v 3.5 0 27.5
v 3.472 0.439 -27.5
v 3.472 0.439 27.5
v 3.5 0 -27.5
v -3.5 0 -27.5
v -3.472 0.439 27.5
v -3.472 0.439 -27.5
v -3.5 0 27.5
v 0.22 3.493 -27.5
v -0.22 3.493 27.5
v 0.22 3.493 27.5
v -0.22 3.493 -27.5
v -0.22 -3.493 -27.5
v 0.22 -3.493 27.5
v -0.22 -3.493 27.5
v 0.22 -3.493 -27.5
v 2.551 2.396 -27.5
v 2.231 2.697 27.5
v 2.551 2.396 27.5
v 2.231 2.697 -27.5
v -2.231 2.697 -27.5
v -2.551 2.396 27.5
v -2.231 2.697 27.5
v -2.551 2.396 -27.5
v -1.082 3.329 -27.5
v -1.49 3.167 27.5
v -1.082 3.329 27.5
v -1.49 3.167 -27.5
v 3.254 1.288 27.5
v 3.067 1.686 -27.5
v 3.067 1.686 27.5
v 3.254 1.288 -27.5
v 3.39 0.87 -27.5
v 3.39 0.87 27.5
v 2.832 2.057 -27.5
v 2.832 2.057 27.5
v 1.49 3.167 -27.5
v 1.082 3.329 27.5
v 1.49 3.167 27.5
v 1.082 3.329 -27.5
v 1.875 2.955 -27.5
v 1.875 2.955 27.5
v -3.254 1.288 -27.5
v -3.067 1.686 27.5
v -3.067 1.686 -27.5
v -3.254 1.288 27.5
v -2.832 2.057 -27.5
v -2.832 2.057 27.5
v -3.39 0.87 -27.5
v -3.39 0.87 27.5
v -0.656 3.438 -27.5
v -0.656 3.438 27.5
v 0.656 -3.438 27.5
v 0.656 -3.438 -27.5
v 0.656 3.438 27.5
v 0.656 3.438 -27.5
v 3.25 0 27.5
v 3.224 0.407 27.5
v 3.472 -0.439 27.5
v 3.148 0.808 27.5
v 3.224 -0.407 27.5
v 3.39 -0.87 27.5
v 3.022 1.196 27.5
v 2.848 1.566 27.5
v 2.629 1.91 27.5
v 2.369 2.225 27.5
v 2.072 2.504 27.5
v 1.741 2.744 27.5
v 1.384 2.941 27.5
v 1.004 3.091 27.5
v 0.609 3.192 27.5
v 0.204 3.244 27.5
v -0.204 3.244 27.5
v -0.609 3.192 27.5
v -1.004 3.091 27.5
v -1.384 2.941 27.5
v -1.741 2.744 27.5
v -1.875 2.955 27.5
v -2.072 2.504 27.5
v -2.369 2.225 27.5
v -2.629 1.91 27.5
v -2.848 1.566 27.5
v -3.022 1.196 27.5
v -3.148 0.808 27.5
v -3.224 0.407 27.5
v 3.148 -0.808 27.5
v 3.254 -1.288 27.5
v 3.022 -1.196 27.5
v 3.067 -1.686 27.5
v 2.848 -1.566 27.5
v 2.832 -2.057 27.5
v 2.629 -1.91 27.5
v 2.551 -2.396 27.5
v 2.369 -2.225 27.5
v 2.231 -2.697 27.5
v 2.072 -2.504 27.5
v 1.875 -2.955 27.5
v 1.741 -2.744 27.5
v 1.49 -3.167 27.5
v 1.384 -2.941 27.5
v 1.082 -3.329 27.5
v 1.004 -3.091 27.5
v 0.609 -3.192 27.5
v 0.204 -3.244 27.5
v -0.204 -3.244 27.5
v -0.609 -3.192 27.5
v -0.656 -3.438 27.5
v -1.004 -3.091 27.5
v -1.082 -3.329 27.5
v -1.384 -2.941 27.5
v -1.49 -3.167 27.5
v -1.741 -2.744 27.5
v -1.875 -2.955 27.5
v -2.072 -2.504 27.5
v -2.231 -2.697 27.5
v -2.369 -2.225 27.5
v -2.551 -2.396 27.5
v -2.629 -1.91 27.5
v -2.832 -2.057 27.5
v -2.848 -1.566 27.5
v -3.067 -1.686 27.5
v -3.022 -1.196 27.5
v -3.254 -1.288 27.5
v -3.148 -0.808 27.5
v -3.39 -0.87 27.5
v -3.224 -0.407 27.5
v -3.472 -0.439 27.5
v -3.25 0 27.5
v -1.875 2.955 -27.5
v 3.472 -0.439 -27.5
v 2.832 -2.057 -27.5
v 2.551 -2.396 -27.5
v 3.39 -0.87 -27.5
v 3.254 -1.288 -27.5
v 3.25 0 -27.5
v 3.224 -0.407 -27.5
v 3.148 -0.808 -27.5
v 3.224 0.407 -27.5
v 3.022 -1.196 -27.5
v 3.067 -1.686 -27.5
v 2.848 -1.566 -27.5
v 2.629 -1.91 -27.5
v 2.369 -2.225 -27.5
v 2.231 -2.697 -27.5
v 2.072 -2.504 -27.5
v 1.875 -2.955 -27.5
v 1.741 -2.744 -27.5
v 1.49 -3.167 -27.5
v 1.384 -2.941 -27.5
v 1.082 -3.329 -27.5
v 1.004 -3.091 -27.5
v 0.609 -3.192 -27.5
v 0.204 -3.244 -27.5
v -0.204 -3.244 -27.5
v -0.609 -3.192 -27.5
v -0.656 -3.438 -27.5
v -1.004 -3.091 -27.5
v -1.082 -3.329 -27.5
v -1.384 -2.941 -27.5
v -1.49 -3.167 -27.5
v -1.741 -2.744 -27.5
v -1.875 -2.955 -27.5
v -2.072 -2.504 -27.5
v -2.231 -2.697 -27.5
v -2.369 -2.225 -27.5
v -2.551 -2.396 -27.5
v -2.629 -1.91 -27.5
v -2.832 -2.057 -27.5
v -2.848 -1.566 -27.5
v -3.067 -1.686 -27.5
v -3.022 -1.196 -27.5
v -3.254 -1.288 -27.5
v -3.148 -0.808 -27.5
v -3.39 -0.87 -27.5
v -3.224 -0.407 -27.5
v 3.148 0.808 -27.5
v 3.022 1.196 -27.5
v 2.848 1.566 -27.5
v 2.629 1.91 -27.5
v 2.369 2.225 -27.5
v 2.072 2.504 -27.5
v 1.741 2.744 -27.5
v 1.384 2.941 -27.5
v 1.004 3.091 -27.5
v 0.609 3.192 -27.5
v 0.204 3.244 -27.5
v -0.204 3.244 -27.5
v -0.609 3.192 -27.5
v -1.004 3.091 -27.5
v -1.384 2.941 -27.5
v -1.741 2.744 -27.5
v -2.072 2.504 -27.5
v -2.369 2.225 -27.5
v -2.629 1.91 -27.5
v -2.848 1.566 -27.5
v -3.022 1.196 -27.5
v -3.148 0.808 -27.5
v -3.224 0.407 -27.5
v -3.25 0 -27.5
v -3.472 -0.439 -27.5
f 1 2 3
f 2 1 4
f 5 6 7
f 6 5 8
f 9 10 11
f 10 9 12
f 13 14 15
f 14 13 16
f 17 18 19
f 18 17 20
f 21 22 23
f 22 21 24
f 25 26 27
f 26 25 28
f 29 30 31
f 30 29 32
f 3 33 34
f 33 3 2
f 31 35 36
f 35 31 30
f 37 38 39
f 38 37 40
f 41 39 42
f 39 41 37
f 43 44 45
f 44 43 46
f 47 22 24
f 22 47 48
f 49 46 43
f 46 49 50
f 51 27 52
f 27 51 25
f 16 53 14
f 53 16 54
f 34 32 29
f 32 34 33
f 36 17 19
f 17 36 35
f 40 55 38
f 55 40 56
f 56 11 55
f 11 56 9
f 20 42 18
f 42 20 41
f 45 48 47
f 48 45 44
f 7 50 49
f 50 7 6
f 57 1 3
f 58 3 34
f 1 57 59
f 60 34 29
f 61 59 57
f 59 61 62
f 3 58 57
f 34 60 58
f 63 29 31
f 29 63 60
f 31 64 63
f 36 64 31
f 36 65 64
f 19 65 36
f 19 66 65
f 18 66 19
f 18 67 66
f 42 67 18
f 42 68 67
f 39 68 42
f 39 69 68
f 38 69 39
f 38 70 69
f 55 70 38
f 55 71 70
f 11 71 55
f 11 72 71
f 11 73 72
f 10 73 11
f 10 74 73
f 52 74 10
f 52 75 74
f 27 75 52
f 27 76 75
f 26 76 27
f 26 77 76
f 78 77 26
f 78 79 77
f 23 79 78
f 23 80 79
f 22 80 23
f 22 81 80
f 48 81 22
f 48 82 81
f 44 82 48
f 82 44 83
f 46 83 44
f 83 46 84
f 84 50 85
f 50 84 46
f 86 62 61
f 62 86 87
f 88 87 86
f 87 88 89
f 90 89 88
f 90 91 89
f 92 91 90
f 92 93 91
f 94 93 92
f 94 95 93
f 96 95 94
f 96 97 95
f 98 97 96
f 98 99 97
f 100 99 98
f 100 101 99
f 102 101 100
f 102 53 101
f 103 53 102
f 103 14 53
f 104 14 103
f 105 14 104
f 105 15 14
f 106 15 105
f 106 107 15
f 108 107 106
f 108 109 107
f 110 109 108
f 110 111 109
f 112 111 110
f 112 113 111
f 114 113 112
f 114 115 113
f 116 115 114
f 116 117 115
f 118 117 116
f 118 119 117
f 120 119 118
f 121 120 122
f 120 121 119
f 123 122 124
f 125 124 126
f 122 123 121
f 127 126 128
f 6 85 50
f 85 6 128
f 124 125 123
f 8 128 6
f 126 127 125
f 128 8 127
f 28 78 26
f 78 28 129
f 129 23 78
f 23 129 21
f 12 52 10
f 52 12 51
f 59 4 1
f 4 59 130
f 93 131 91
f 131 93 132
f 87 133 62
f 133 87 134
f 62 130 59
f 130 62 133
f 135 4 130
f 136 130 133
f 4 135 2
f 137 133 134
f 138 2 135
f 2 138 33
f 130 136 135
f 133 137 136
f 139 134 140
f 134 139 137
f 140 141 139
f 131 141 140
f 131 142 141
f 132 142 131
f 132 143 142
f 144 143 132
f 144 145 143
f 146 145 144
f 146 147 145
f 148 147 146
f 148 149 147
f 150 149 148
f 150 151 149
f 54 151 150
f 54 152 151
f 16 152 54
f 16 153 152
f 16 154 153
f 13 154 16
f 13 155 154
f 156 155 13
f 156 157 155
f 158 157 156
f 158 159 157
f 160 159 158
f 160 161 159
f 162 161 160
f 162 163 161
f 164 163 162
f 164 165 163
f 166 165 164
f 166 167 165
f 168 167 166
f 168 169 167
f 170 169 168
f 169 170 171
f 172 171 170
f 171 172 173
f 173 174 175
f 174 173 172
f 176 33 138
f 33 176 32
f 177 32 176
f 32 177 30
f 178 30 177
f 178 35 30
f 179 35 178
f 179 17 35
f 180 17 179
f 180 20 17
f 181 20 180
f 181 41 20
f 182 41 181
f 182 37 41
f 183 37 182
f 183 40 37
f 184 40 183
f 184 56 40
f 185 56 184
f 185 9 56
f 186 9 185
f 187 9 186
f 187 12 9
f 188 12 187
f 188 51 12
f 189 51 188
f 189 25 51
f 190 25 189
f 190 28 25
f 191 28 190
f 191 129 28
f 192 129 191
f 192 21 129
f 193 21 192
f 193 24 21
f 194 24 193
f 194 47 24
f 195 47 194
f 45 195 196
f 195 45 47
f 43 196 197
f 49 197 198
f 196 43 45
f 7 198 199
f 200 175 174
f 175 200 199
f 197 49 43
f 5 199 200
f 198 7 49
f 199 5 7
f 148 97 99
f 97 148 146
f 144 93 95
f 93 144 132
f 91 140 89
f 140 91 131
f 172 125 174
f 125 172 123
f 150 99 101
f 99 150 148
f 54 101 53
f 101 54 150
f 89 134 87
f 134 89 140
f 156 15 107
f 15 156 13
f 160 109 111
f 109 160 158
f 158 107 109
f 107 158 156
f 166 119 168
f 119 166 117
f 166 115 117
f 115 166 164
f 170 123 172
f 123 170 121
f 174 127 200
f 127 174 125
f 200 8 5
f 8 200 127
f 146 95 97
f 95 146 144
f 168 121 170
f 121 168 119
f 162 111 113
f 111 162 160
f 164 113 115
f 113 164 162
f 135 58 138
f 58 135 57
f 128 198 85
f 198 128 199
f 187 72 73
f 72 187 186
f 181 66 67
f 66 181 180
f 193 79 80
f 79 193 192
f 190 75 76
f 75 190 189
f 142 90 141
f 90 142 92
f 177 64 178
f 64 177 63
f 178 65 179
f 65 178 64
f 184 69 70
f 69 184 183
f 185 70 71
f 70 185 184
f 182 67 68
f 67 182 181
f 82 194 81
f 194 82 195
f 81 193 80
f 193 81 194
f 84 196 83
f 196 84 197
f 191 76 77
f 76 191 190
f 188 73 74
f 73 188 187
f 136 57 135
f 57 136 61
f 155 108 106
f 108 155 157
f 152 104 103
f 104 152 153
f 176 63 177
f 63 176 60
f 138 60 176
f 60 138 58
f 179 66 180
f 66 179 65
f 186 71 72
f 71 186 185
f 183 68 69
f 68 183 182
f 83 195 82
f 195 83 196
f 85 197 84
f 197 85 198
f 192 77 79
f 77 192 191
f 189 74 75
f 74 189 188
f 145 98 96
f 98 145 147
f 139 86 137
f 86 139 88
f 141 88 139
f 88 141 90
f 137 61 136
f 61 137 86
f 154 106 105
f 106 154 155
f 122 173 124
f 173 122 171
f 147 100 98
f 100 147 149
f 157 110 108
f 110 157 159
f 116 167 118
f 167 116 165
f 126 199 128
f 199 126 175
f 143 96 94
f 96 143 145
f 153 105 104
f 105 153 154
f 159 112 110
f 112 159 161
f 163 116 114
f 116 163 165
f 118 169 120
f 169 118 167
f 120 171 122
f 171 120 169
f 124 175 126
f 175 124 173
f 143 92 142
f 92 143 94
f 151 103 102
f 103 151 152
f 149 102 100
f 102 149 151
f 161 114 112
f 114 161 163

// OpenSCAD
$fn = 50;


difference() {
	union() {
		translate(v = [0, 0, -27.5000000000]) {
			cylinder(h = 55, r = 3.5000000000);
		}
	}
	union() {
		translate(v = [0, 0, -100.0000000000]) {
			cylinder(h = 200, r = 3.2500000000);
		}
	}
}
